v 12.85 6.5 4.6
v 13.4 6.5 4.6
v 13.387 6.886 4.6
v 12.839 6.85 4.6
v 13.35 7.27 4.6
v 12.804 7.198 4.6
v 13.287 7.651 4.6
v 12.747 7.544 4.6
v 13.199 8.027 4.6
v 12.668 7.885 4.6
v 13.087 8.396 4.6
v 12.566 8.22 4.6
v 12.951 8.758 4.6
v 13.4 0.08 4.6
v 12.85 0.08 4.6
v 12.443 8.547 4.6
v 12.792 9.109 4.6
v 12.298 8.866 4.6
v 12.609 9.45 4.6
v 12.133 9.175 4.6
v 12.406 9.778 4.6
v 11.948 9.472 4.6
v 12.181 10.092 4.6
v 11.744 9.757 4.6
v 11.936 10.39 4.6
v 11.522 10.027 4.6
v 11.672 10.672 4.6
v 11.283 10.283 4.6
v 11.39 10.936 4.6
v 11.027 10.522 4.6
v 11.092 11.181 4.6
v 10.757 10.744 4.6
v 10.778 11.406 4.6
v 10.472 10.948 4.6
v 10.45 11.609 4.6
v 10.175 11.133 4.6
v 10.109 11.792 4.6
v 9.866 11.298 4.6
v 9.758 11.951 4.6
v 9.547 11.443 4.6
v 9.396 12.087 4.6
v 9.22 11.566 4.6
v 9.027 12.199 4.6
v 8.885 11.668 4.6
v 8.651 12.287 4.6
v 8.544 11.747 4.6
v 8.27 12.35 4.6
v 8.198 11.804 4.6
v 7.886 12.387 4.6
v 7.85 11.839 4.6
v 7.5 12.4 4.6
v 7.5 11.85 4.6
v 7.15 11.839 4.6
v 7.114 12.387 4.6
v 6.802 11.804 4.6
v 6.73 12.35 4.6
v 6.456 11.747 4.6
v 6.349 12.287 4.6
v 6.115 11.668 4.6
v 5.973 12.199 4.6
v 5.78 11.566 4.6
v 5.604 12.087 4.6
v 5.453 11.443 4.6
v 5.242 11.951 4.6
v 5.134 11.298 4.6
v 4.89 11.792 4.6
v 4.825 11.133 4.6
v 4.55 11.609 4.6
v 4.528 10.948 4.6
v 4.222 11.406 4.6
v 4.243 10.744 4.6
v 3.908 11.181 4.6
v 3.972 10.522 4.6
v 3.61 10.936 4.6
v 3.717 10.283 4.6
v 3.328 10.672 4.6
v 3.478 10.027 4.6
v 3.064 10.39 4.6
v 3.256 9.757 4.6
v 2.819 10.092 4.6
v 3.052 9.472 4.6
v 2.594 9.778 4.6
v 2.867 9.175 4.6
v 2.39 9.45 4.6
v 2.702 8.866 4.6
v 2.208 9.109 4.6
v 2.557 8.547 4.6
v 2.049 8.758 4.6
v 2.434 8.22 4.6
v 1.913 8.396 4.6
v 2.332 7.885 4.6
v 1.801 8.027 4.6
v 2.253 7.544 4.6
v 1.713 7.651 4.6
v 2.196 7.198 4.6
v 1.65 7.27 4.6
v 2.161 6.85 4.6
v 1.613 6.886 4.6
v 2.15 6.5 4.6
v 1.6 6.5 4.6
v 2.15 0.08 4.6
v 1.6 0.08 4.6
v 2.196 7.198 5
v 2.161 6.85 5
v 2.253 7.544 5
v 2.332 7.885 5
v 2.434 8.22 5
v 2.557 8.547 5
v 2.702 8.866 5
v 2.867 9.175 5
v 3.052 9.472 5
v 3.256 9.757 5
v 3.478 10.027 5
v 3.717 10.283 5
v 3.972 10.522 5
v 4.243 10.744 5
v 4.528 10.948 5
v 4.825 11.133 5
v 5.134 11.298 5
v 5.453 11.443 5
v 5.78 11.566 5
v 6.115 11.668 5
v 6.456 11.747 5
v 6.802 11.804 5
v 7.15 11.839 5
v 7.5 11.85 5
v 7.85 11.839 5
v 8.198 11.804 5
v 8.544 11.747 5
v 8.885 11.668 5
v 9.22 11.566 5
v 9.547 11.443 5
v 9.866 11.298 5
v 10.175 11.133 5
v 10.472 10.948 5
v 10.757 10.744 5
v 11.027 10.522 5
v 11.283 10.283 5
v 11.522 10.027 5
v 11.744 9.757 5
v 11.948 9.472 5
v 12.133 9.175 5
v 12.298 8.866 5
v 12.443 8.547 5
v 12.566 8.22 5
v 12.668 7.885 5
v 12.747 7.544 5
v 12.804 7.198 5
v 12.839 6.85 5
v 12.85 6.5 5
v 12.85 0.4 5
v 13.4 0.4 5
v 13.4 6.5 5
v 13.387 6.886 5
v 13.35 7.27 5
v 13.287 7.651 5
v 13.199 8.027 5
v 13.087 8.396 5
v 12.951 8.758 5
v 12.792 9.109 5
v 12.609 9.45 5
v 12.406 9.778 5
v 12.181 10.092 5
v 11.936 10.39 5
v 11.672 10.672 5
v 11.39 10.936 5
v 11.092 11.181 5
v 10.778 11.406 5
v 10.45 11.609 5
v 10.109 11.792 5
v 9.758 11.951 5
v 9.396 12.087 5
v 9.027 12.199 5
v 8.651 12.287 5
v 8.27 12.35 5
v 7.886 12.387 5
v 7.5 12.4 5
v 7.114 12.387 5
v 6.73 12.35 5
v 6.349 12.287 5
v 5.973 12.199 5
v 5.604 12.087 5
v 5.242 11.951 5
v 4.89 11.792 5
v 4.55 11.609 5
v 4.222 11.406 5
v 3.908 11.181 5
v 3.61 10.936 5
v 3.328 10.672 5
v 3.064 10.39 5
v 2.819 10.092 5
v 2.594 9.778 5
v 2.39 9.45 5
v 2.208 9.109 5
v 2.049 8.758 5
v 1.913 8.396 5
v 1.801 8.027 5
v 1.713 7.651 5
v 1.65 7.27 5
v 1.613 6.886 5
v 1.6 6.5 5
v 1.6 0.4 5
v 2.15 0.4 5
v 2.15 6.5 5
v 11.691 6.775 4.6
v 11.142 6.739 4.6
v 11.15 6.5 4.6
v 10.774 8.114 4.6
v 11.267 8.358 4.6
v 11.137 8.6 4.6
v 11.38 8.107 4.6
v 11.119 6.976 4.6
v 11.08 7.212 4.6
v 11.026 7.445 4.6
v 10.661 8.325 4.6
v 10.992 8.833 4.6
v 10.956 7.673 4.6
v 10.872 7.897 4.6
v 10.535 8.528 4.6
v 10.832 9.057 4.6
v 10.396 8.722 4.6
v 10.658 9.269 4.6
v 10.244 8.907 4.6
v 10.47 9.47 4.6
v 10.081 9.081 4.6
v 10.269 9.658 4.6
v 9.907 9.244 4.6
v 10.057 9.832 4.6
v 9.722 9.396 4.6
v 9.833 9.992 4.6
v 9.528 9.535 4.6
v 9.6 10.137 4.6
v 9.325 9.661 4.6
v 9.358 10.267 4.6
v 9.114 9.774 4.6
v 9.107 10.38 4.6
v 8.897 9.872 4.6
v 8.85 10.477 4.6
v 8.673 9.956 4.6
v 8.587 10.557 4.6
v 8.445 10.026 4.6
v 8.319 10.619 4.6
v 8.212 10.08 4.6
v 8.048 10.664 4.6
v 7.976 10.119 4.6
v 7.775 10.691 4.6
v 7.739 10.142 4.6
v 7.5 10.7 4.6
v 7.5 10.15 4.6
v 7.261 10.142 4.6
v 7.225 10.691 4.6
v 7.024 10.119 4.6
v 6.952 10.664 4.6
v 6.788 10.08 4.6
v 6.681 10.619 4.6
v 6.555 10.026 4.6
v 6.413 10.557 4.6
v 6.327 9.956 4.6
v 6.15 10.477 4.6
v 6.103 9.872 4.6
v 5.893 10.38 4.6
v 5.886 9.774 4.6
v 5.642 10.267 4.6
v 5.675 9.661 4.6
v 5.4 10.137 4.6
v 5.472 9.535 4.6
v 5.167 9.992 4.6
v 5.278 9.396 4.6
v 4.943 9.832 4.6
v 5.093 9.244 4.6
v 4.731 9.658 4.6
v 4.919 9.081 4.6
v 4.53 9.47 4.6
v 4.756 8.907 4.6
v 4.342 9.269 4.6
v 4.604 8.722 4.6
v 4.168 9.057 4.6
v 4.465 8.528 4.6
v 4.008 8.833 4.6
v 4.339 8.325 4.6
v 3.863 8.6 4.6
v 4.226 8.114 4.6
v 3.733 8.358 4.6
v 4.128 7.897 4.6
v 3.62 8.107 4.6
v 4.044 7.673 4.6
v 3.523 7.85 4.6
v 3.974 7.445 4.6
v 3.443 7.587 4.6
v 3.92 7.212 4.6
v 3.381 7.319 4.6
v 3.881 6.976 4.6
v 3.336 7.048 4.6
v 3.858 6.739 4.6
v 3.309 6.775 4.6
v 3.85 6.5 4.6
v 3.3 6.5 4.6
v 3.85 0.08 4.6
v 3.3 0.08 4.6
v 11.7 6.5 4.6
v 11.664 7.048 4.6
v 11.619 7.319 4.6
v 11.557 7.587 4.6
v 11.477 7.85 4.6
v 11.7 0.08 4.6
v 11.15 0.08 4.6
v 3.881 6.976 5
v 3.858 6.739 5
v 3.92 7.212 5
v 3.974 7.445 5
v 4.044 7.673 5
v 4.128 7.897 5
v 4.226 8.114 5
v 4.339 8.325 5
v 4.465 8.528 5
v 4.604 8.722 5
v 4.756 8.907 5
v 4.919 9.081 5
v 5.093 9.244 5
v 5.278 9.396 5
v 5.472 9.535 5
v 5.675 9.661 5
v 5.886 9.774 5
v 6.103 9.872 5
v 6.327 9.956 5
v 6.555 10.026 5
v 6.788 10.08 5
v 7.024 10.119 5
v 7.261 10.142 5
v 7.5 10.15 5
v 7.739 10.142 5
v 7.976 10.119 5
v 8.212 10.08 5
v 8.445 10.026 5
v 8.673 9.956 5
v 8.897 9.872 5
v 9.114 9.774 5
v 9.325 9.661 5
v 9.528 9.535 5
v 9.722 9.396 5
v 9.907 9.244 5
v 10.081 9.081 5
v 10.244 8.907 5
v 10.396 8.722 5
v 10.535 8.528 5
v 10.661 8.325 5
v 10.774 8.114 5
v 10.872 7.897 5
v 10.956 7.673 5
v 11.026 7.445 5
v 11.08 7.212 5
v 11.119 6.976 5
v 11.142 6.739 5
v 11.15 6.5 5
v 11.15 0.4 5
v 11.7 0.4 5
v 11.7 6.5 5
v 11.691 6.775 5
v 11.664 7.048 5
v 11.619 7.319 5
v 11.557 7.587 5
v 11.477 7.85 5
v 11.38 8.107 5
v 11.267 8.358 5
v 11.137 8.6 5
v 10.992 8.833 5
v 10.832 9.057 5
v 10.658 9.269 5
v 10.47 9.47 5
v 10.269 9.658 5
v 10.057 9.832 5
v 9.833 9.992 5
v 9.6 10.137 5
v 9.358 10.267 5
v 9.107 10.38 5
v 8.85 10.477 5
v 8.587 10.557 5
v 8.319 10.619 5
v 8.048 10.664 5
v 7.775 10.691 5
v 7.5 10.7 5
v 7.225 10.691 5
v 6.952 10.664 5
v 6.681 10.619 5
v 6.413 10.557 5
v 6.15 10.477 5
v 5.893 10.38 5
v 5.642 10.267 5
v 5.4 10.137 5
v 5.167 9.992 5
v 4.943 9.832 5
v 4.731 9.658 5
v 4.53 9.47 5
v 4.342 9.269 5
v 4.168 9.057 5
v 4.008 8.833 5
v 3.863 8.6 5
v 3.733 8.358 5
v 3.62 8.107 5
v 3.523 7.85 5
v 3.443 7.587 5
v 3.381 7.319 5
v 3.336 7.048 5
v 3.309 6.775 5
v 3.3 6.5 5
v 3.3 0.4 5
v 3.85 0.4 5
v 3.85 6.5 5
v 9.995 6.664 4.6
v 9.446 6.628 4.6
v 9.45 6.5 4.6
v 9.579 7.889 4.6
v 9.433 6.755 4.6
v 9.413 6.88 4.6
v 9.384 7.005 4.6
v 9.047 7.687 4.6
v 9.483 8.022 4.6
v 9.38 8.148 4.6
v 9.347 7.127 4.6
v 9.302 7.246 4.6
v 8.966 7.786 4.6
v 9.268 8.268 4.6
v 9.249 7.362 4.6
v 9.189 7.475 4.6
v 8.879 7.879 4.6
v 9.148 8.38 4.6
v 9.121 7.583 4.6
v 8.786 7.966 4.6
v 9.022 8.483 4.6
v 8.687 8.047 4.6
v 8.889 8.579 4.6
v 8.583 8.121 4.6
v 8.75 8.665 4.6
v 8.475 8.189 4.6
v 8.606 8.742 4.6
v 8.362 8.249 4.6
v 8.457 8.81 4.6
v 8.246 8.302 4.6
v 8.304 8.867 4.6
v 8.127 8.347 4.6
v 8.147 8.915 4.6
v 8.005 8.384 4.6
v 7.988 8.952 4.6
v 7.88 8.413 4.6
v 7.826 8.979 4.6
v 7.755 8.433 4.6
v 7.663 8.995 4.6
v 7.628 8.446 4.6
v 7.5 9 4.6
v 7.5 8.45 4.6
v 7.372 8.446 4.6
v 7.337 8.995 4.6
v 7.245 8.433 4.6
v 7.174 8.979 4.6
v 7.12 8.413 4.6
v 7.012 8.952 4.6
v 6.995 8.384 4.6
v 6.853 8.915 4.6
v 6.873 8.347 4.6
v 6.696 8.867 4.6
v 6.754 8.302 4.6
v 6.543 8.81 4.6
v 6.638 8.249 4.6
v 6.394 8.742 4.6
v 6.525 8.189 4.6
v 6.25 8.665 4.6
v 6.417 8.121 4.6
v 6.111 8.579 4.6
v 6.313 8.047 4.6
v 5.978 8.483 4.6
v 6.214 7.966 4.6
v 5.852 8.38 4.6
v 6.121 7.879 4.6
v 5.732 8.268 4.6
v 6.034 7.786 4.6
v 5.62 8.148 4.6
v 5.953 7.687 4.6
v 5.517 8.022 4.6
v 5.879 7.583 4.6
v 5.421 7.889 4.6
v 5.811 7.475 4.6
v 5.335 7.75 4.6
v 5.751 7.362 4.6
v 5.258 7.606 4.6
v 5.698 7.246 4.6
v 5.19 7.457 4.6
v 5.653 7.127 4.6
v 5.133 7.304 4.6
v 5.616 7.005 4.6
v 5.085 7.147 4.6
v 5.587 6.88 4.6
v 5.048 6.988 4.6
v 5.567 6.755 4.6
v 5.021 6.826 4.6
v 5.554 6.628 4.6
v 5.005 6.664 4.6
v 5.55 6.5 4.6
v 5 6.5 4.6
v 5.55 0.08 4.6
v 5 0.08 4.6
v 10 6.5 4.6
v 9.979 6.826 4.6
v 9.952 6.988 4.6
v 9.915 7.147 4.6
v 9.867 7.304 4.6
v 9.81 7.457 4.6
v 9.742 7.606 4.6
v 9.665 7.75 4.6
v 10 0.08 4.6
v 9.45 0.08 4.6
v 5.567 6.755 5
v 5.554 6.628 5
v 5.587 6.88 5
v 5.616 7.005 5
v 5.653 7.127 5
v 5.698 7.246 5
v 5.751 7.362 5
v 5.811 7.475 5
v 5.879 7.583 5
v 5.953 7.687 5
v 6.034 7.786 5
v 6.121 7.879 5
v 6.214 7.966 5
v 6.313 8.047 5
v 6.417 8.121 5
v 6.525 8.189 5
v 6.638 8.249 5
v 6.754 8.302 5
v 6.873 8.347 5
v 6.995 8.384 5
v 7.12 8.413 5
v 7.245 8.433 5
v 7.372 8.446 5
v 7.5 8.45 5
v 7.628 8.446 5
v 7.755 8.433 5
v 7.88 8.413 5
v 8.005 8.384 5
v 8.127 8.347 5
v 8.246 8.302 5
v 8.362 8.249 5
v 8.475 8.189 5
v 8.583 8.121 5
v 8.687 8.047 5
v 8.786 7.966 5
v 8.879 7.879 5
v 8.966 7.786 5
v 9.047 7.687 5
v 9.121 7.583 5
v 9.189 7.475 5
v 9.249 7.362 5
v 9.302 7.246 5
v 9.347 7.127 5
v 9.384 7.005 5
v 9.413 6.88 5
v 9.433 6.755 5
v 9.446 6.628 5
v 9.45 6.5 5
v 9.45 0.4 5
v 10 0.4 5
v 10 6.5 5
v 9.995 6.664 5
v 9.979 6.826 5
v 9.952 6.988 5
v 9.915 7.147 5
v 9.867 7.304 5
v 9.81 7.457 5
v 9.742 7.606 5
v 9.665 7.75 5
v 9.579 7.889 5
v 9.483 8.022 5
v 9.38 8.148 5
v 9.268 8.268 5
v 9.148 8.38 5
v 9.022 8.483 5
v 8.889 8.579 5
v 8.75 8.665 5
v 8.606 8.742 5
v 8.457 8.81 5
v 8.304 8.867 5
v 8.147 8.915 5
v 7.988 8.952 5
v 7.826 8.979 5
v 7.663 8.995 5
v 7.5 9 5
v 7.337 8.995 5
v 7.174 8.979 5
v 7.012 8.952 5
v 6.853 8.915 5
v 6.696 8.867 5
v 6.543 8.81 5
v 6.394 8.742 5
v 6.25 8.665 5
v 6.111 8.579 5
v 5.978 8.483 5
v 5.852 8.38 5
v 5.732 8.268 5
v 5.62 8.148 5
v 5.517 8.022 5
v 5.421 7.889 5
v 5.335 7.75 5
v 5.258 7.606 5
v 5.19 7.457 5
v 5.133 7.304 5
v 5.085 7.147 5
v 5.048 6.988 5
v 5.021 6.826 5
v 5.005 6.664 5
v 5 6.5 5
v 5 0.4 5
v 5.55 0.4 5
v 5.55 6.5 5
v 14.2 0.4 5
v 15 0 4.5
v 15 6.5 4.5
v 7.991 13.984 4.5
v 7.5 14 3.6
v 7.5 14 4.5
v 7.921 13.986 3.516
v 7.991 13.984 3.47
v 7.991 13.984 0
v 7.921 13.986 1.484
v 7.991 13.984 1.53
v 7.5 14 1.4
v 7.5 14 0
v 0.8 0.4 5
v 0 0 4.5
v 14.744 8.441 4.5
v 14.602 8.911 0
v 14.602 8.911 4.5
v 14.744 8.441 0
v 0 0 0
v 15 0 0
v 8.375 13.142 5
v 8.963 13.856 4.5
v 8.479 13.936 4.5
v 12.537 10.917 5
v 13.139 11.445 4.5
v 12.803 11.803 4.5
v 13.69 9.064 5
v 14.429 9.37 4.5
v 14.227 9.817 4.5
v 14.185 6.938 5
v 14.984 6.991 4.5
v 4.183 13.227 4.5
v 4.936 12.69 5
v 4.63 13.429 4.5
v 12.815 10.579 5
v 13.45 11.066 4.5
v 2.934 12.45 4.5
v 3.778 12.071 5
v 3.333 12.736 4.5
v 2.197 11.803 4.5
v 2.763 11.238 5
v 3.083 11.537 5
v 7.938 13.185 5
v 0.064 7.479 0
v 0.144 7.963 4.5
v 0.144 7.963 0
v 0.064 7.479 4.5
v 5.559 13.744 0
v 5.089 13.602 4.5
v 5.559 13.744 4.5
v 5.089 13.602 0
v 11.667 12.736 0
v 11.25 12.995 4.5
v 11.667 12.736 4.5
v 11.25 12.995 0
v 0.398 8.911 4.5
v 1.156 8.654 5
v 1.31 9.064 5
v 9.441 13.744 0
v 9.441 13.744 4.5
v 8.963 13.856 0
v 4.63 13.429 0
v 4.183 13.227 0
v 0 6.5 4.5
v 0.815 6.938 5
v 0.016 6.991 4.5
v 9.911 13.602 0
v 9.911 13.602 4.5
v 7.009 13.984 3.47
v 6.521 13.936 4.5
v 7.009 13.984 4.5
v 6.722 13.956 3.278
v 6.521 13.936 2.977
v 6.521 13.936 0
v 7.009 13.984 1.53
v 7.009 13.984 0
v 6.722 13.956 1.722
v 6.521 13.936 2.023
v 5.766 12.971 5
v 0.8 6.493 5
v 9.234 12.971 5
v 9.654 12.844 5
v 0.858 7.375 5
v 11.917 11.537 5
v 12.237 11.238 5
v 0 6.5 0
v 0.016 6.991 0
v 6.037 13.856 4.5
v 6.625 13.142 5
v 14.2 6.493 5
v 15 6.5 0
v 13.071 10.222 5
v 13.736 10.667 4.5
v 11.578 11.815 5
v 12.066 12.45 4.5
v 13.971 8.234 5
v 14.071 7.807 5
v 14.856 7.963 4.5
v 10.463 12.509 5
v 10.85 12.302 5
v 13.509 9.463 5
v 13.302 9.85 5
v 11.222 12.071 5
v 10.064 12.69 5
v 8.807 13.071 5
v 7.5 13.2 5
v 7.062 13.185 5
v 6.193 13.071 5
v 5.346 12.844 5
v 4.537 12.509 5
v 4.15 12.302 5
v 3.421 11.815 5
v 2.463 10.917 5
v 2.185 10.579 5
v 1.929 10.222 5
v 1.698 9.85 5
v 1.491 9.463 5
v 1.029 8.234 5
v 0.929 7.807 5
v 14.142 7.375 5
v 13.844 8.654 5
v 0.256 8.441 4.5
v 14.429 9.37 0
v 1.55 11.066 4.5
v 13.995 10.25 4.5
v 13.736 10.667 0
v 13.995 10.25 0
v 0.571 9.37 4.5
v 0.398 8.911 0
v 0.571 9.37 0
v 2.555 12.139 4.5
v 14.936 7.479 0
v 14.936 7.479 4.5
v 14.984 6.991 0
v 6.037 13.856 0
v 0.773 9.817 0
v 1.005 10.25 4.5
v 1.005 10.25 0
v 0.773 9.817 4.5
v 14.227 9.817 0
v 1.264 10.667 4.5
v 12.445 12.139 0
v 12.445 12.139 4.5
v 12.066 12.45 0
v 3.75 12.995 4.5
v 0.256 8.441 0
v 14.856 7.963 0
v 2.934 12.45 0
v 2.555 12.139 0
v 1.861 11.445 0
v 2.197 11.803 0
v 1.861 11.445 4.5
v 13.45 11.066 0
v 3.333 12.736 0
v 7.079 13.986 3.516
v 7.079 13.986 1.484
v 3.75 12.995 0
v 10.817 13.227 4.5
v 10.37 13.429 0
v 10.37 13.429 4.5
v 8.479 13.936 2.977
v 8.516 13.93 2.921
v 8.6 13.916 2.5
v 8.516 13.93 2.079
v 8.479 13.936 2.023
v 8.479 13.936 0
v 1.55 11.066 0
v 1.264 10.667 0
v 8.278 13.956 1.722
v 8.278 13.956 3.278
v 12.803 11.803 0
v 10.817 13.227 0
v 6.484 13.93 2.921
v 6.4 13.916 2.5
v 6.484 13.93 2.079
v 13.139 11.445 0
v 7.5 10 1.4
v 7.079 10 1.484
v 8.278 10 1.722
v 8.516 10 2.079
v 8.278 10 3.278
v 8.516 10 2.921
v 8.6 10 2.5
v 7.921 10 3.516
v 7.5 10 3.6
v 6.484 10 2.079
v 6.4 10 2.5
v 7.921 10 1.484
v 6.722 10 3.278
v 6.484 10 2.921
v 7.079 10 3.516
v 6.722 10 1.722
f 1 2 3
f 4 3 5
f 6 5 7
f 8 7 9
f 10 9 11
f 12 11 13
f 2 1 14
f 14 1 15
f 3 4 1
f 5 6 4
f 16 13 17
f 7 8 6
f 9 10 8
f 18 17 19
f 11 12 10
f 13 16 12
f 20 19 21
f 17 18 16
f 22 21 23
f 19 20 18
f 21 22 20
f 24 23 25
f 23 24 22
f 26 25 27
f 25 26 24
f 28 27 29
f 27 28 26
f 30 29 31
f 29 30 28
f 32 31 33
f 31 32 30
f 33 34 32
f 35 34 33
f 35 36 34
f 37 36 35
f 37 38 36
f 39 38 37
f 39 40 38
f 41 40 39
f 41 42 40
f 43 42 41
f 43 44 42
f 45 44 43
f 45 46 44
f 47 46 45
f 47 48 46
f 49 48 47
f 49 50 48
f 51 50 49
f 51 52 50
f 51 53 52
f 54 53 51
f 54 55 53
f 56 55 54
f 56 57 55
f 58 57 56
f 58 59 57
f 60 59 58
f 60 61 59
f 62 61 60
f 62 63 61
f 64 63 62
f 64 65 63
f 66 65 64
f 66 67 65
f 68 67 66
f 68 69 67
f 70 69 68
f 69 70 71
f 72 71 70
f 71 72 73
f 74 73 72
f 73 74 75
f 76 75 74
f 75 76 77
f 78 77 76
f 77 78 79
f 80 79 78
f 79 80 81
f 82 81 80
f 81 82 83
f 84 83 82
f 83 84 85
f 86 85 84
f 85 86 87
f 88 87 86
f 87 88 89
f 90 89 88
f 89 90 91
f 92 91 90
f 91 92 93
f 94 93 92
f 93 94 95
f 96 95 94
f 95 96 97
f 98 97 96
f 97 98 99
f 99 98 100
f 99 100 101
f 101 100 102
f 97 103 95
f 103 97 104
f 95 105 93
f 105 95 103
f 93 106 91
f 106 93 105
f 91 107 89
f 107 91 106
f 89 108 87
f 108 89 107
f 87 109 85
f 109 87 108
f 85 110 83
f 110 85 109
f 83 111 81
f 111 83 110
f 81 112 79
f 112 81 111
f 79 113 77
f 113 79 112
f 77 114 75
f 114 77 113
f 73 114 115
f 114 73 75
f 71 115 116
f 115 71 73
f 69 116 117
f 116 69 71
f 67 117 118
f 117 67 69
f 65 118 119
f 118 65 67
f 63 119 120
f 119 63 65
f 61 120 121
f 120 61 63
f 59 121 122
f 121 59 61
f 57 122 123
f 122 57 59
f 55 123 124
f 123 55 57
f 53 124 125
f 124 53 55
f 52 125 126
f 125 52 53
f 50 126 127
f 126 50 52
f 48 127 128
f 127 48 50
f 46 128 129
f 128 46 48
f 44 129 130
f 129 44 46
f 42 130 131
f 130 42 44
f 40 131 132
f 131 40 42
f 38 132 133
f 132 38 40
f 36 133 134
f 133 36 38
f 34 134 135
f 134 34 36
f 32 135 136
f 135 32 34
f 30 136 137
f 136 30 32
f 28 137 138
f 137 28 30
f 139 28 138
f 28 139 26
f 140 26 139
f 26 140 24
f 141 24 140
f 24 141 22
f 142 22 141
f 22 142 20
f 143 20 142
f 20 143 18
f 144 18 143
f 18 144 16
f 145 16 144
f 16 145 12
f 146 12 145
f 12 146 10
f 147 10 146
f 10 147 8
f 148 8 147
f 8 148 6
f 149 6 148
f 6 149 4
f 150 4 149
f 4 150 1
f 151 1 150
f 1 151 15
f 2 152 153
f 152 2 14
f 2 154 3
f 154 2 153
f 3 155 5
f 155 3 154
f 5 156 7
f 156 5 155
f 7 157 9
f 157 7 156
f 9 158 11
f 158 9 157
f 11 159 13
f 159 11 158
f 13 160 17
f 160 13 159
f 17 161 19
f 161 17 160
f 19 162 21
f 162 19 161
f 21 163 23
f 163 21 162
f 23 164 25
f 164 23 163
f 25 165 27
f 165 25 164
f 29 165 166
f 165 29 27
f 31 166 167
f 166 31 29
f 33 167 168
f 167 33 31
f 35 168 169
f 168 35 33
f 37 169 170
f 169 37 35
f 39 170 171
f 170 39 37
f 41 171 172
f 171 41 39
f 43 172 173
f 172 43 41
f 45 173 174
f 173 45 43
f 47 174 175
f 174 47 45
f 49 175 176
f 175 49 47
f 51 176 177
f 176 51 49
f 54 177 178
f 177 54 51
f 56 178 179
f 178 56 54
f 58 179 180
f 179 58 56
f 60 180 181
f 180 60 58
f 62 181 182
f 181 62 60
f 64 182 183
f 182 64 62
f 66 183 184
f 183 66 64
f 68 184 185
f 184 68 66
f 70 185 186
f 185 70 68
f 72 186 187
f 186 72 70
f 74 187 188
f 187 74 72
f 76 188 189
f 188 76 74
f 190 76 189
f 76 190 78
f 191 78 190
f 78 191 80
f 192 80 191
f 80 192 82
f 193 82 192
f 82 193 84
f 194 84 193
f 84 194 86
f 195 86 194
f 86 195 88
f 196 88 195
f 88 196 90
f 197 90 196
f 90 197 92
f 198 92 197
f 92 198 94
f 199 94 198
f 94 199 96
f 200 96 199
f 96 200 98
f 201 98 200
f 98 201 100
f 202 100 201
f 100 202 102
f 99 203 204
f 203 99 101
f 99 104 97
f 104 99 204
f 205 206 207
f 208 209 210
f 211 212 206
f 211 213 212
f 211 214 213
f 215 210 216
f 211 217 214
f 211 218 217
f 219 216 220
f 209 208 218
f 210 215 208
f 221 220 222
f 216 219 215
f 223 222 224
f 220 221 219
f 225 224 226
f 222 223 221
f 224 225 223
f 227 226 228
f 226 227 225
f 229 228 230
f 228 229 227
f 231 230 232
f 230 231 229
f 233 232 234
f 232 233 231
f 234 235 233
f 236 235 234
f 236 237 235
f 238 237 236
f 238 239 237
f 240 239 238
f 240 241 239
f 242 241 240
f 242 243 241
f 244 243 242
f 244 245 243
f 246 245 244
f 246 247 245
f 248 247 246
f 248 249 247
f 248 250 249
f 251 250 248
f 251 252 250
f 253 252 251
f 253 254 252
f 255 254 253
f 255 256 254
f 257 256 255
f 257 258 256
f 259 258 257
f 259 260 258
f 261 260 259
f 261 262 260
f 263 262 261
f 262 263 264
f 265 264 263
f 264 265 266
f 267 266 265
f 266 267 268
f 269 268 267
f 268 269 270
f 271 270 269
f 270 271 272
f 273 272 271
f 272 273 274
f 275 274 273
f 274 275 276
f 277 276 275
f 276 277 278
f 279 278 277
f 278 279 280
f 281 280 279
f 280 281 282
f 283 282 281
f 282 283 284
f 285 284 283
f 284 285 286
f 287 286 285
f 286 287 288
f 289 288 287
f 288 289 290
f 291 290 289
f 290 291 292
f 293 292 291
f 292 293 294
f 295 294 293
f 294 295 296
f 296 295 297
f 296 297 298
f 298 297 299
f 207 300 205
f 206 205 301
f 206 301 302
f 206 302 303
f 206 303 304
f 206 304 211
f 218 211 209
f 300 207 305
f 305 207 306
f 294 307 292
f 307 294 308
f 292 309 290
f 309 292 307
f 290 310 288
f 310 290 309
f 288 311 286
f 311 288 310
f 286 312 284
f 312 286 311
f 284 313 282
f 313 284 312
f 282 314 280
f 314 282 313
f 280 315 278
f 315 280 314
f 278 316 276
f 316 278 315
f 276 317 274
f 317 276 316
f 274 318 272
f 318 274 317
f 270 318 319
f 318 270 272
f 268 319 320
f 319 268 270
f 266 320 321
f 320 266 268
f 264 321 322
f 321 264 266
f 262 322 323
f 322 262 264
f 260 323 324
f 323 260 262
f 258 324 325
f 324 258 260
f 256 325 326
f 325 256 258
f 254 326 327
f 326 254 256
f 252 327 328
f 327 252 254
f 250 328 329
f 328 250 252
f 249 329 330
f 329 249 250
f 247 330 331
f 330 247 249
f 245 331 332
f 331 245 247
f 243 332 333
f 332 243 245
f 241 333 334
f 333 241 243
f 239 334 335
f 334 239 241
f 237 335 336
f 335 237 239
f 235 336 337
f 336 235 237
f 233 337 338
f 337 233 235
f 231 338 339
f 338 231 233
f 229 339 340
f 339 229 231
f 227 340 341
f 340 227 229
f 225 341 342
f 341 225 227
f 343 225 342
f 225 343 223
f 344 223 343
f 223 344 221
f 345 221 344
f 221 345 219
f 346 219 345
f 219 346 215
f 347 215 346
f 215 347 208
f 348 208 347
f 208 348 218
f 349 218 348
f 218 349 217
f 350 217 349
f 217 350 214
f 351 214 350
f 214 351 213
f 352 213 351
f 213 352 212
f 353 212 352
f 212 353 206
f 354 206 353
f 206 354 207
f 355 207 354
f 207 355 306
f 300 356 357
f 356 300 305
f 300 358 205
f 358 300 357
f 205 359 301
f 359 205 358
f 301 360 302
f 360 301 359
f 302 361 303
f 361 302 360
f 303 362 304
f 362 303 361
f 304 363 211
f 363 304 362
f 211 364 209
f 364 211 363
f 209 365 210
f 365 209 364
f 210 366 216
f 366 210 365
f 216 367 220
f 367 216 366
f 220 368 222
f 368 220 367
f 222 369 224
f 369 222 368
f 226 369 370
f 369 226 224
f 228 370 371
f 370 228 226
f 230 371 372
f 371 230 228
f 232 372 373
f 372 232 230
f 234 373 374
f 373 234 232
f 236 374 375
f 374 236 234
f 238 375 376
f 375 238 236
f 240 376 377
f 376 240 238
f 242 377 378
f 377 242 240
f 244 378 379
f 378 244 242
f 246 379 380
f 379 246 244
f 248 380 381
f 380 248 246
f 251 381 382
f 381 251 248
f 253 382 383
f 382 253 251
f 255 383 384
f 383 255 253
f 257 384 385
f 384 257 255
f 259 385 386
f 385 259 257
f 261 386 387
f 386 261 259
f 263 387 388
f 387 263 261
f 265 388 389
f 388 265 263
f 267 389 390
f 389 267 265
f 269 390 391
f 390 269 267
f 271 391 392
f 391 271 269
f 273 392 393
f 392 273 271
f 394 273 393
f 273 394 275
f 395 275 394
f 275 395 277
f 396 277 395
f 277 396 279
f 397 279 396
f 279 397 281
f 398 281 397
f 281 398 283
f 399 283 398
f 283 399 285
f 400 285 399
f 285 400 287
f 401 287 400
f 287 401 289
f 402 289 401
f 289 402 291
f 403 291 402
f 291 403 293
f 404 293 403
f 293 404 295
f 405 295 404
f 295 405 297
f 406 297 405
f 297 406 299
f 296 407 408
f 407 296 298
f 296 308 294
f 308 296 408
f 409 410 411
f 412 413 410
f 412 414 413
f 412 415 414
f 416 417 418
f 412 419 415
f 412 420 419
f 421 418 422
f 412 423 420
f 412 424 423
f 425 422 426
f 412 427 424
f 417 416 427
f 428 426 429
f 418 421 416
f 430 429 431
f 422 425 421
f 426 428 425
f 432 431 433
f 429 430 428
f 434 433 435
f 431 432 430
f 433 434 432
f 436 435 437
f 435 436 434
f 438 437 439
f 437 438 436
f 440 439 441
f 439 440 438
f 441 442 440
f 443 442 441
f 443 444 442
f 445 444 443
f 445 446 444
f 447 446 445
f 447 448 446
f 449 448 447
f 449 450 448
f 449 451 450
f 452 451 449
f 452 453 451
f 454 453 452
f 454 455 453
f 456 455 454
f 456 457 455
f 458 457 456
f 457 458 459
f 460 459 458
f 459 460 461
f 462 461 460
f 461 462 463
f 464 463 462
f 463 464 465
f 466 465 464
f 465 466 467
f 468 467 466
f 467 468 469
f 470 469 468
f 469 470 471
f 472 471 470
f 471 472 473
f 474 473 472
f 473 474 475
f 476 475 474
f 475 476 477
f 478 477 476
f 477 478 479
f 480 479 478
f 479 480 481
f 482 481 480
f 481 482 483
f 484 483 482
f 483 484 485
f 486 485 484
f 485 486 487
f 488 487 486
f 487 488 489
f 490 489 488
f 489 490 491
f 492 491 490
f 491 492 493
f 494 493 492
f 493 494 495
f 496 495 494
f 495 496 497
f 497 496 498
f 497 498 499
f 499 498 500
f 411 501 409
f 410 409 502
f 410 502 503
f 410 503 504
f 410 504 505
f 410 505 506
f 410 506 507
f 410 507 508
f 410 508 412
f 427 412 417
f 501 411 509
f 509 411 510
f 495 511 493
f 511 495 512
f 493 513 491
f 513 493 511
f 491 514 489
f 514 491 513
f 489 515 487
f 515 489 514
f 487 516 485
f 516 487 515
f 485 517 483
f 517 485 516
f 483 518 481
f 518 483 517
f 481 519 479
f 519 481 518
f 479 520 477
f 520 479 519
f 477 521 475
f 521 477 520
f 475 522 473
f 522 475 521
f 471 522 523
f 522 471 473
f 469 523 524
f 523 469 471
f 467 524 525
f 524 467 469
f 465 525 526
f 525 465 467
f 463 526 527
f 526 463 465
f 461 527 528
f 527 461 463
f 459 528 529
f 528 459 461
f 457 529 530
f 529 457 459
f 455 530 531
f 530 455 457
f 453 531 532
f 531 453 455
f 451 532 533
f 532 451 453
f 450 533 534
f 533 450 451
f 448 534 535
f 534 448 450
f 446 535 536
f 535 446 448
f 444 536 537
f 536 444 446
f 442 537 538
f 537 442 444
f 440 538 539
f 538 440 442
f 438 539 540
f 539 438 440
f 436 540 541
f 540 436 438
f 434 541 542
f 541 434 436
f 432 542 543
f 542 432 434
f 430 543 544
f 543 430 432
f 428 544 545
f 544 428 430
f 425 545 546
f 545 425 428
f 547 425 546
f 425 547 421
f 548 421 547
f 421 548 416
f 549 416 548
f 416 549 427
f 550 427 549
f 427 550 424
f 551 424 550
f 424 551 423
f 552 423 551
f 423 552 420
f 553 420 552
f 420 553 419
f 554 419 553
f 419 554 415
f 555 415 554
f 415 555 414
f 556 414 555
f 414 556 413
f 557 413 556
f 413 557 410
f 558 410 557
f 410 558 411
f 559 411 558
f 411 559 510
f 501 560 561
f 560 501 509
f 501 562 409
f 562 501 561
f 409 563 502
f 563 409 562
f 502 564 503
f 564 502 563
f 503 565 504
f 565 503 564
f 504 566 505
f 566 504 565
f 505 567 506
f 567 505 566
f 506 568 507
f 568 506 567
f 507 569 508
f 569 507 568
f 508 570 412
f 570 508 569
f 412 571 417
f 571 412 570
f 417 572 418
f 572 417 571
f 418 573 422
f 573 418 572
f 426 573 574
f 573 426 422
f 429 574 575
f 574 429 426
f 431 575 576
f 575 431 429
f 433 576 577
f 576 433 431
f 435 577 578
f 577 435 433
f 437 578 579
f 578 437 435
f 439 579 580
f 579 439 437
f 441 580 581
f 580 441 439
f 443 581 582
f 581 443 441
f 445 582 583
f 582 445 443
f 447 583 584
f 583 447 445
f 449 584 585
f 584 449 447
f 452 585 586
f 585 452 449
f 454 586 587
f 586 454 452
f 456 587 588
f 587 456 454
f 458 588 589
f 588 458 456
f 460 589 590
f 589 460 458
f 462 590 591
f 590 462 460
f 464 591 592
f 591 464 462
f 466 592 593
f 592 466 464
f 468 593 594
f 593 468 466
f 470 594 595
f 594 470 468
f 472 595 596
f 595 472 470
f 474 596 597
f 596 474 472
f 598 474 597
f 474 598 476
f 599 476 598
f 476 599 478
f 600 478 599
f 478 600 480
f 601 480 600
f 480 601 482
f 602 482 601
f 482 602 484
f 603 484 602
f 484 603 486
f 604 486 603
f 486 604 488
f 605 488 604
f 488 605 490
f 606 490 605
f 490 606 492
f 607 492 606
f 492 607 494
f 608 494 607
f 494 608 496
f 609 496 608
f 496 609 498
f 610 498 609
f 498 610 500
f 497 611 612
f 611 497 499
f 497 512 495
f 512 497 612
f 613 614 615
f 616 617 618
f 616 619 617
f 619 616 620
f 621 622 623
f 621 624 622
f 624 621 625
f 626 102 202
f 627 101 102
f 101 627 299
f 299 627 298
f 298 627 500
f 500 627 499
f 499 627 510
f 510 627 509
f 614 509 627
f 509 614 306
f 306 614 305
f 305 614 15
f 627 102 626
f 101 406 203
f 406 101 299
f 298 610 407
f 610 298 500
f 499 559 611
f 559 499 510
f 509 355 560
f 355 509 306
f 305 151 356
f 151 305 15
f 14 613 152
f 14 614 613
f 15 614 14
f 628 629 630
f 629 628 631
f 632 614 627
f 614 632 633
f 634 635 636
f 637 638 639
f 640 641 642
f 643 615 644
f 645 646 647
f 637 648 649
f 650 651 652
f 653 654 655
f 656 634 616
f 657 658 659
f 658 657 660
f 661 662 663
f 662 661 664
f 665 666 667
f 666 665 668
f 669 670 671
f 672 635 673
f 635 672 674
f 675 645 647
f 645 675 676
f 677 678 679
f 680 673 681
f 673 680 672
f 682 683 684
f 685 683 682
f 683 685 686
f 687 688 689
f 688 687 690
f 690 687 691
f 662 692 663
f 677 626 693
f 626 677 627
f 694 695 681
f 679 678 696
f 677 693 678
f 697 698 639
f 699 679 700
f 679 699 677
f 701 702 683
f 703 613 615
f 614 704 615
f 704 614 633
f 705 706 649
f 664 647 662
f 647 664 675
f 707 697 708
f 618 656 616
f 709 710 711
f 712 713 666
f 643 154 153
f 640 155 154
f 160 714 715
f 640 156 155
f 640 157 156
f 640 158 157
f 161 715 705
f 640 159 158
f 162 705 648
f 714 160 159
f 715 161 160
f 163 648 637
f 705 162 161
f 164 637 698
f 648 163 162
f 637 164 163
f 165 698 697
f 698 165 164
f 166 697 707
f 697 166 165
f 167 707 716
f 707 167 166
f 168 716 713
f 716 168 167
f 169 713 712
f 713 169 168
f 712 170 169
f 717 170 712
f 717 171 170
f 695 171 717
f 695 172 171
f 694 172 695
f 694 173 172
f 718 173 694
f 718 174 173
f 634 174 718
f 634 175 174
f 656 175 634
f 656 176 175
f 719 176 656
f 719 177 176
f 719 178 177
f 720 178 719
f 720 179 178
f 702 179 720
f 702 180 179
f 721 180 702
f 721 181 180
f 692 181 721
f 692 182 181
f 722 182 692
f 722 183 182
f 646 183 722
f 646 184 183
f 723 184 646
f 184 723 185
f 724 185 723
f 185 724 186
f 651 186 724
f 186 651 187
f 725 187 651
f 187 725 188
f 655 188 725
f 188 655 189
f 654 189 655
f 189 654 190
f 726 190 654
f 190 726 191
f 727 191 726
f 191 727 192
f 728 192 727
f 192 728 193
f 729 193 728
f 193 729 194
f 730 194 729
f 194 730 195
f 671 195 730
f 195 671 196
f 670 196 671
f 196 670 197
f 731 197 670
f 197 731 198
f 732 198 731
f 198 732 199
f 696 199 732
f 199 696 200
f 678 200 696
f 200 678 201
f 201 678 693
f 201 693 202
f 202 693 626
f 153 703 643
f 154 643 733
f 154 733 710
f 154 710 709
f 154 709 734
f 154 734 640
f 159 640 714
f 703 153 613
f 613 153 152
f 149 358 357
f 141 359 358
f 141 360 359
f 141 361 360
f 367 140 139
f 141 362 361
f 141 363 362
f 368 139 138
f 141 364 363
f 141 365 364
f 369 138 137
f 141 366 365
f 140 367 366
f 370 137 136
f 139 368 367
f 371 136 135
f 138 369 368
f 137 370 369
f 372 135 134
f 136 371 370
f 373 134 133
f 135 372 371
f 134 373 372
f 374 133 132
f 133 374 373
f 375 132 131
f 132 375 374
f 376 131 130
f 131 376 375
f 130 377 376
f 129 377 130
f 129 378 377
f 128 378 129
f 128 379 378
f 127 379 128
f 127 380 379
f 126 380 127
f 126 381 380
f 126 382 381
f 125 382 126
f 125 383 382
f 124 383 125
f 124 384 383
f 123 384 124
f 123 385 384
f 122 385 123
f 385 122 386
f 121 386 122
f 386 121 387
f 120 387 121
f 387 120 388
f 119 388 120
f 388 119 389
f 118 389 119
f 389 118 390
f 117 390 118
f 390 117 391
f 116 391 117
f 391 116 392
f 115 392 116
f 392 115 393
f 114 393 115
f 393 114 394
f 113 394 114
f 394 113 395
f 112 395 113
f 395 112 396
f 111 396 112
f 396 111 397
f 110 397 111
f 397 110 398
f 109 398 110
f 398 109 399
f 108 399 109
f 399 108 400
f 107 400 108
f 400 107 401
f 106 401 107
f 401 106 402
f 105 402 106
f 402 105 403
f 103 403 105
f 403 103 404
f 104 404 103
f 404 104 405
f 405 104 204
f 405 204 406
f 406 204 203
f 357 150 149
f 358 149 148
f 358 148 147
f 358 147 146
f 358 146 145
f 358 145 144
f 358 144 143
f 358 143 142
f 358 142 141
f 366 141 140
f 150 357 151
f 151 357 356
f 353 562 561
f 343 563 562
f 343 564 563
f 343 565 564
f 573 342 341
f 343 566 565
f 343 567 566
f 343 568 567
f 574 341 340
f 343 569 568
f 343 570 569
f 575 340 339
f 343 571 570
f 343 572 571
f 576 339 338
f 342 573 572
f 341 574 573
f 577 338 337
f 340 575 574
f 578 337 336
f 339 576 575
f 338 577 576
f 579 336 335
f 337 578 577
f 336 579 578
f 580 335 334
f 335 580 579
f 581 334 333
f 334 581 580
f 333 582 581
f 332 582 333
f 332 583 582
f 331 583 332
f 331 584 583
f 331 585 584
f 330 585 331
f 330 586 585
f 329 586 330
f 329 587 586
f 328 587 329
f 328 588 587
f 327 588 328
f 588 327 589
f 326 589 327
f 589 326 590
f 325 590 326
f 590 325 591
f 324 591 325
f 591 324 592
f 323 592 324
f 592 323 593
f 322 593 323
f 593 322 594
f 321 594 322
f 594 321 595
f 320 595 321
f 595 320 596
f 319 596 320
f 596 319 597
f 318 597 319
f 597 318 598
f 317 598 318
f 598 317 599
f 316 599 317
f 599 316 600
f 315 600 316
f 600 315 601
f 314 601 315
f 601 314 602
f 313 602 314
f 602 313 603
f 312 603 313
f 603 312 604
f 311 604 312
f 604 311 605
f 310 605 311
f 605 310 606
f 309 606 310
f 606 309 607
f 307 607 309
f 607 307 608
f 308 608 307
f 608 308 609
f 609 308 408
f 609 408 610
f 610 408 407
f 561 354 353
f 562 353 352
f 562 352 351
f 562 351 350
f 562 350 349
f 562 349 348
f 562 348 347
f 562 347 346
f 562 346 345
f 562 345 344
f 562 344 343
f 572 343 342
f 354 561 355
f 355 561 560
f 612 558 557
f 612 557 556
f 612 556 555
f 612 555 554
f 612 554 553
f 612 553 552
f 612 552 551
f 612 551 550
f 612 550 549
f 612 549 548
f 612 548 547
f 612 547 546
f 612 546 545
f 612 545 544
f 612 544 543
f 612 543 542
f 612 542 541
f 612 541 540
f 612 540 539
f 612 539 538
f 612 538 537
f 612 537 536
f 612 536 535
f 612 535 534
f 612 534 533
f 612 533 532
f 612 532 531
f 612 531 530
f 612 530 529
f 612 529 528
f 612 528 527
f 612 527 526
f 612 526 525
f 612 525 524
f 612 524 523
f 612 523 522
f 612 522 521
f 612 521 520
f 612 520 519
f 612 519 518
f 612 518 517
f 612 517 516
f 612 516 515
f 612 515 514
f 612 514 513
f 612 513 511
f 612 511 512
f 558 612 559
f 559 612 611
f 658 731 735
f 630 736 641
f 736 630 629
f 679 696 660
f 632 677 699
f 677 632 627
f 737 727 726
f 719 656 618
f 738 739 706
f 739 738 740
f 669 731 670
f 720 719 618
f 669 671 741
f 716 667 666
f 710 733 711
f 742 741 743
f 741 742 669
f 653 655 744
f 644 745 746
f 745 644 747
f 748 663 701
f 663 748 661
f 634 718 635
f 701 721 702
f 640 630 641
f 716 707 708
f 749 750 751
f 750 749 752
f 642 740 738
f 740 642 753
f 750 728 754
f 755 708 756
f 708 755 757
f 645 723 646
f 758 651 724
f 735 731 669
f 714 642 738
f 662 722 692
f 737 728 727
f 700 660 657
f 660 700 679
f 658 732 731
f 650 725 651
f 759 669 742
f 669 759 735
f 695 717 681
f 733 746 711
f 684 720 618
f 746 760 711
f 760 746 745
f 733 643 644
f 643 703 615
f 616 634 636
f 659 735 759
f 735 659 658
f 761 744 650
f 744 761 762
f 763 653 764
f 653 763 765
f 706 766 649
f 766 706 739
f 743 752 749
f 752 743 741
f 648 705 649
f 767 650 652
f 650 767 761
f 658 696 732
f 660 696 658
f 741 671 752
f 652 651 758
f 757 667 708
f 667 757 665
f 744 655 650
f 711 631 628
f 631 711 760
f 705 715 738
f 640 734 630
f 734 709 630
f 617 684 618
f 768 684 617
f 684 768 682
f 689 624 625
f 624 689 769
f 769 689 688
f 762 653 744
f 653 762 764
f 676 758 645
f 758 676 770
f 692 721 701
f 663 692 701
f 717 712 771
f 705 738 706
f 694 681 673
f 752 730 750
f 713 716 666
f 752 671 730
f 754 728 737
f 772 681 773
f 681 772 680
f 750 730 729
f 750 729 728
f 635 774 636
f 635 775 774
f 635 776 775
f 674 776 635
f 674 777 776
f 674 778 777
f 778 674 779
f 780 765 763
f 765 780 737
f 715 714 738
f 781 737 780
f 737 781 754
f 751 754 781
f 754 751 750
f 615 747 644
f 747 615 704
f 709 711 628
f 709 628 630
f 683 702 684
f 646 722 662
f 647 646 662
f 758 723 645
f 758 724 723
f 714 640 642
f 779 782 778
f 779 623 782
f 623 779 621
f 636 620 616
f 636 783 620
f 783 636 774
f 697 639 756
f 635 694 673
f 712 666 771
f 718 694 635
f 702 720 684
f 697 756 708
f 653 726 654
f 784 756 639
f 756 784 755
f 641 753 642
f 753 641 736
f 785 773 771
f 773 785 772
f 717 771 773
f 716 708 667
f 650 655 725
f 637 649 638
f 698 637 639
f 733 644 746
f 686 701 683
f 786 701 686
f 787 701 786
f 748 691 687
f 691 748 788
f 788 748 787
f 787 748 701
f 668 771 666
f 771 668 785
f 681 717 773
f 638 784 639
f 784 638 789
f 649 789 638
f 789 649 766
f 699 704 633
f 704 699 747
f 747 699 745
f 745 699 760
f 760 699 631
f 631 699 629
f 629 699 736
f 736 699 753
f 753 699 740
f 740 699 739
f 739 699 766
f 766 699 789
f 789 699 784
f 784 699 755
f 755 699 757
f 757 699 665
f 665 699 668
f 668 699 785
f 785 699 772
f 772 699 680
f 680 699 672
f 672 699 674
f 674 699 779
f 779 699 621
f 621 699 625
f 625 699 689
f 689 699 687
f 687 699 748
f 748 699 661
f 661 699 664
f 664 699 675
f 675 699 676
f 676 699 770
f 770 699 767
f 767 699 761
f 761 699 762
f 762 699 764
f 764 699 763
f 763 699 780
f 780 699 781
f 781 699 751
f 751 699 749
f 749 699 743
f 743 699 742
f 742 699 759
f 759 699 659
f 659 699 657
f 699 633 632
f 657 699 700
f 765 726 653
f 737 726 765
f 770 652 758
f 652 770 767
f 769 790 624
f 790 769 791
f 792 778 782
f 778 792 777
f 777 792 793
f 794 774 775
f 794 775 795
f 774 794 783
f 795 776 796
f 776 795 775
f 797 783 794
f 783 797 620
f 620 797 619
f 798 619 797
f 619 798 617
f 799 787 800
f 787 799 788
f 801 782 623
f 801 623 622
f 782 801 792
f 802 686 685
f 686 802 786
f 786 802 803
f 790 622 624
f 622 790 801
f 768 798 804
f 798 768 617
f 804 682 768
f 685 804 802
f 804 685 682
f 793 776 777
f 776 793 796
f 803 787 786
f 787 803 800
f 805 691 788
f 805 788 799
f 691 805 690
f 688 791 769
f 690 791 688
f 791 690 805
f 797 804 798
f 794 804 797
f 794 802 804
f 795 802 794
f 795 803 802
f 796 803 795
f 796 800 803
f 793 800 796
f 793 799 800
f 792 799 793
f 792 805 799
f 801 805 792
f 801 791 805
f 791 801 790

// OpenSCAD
// Arch_Vase.stl  -  Store Versile room frame (Rev C)
// Quantity: 1   Filament: Beige (e.g. PLA Matte Desert Tan)
// Print: layer 0.12 mm, infill 20%, 2 walls, brim 0 mm, NO supports
// Orientation: back  (lying on its back, front face up)
// Notes: Arch grooves up.
// The library draws parts with their front toward +Y; mirror([0,1,0]) makes the real
// part face the viewer correctly (see build.py). Edit dimensions in versile_parts.scad.
use <../versile_parts.scad>

rotate([-90, 0, 0]) mirror([0, 1, 0]) arch_vase();
